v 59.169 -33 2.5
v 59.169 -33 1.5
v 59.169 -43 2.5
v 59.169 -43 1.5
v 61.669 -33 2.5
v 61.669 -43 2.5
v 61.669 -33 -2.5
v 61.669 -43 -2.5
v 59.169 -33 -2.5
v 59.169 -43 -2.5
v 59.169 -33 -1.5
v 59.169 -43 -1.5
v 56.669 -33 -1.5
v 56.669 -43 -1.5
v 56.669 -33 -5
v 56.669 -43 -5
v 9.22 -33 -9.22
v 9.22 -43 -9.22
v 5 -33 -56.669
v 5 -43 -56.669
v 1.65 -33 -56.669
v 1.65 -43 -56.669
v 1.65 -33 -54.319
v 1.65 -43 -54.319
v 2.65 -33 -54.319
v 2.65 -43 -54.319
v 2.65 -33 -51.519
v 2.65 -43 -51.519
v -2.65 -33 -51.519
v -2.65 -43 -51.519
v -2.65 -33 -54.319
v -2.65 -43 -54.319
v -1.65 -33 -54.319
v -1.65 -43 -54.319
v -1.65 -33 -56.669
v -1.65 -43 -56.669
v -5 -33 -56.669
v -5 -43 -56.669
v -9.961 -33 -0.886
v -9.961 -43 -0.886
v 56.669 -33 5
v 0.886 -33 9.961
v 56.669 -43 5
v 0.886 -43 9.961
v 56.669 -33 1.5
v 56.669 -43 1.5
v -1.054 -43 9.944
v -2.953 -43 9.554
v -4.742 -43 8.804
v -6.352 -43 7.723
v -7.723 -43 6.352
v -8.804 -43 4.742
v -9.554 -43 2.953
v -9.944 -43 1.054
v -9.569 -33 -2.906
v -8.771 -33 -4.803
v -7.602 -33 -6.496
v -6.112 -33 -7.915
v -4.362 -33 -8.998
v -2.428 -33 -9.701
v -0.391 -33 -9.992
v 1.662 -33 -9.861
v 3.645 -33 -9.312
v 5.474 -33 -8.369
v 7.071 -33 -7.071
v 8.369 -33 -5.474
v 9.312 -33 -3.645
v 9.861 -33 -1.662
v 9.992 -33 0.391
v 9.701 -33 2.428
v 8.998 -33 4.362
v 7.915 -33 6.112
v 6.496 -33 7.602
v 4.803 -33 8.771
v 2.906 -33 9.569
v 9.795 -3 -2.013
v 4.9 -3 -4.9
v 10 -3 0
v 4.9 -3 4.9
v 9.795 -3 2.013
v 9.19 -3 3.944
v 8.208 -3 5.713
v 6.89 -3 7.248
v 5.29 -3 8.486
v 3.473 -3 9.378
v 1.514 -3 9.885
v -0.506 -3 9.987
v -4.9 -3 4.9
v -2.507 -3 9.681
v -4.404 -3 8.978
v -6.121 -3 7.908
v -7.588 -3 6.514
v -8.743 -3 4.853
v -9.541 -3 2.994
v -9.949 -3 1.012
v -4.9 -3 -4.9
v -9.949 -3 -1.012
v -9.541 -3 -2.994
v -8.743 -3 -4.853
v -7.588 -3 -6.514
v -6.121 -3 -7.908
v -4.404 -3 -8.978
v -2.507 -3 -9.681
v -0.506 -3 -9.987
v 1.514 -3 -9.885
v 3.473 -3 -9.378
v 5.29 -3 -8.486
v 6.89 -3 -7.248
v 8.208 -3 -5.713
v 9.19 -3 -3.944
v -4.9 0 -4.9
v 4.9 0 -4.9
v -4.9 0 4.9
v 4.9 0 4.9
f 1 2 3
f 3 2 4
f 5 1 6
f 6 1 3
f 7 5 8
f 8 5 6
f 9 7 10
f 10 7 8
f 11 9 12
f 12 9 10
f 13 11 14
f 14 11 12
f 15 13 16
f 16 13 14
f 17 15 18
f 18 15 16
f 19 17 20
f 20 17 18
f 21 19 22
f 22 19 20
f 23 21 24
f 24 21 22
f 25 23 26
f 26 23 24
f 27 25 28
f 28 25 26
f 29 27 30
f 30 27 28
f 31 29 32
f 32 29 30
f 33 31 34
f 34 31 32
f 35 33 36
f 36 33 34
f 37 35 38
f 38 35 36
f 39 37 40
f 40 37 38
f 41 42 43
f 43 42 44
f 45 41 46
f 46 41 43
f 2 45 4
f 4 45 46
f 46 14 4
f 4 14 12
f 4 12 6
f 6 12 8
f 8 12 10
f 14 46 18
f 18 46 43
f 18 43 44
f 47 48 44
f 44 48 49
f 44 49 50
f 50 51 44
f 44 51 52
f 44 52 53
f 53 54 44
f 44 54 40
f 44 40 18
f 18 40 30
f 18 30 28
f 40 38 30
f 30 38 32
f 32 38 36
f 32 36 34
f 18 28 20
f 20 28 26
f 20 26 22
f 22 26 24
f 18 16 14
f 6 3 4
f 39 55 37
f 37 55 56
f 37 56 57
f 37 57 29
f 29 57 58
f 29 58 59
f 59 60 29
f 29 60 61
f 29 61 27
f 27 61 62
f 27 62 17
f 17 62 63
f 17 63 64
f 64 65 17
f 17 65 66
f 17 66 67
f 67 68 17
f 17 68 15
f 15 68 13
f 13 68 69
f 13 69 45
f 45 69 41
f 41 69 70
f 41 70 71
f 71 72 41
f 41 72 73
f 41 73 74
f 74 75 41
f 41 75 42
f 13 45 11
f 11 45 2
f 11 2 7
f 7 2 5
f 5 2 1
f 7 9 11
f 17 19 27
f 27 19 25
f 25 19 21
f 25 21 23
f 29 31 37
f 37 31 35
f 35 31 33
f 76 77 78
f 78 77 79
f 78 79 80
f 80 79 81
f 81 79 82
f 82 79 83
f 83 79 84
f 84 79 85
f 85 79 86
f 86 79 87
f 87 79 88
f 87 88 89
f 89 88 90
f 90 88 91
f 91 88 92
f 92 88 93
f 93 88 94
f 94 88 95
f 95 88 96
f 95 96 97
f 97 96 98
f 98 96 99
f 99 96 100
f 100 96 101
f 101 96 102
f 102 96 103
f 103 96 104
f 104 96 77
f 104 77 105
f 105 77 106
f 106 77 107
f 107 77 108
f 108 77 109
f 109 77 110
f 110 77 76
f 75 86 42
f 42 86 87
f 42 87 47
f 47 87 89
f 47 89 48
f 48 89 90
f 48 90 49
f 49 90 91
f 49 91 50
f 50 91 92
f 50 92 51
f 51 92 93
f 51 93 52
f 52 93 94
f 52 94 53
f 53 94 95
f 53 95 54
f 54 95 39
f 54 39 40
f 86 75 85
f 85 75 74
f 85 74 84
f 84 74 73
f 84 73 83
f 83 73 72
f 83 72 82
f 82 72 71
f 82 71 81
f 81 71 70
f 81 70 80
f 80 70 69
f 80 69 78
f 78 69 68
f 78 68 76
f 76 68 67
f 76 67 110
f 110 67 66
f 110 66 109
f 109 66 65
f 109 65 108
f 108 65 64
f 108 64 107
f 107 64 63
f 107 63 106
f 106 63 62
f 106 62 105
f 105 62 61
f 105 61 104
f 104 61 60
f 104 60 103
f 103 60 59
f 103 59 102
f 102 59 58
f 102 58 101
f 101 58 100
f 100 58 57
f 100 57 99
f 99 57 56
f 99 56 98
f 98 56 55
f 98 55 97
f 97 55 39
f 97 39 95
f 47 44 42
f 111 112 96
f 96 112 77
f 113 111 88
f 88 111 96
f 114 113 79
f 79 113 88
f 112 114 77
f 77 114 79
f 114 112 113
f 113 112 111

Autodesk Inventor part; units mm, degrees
ref_plane "YZ Plane" through (0, 0, 0) normal (1, 0, 0) x (0, 1, 0)
ref_plane "XZ Plane" through (0, 0, 0) normal (0, 1, 0) x (-1, 0, 0)
ref_plane "XY Plane" through (0, 0, 0) normal (0, 0, 1) x (1, 0, 0)
sketch "Sketch1" plane through (0, 0, 0) normal (0, 1, 0) x (-1, 0, 0)
  line L0 (4.9, 4.9) -> (-4.9, 4.9)
  line L1 (-4.9, 4.9) -> (-4.9, -4.9)
  line L2 (-4.9, -4.9) -> (4.9, -4.9)
  line L3 (4.9, -4.9) -> (4.9, 4.9)
  line L4 (4.9, 4.9) -> (-4.9, -4.9) construction
  line L5 (-4.9, 4.9) -> (4.9, -4.9) construction
  point P0 (0, 0)
  dimension "d0" = 9.8
  dimension "d1" = 9.8
extrude "Extrusion1" add sketch "Sketch1" against normal blind 3
sketch "Sketch2" plane through (0, -3, 0) normal (0, -1, 0) x (1, 0, 0)
  circle A0 centre (0, 0) radius 10
  dimension "d4" = 20
extrude "Extrusion2" add sketch "Sketch2" along normal blind 30
sketch "Sketch3" plane through (0, -33, 0) normal (0, -1, 0) x (1, 0, 0)
  arc A0 (56.6685, -50.6545) -> (56.6685, -62.6825) centre (56.6685, -56.6685) ccw projected
  line L0 (56.6685, -56.6685) -> (0, -56.6685)
  line L1 (0, -56.6685) -> (0, 0)
  circle A1 centre (0, 0) radius 10
  circle A2 centre (0, 0) radius 10 projected
  line L2 (0, -56.6685) -> (-5, -56.6685)
  line L3 (-5, -56.6685) -> (-9.9607, -0.8858)
  line L4 (56.6685, 5) -> (0.8858, 9.9607)
  line L5 (0, -56.6685) -> (5, -56.6685)
  line L6 (56.6685, -5) -> (0.8858, -9.9607)
  line L7 (5, -56.6685) -> (9.9607, -0.8858)
  line L8 (56.6685, 5) -> (112.4513, 9.9607)
  line L9 (56.6685, -5) -> (112.4513, -9.9607)
  line L10 (-5, -56.6685) -> (-9.9607, -112.4513)
  line L11 (5, -56.6685) -> (9.9607, -112.4513)
  line L12 (56.6685, 5) -> (56.6685, -5)
  line L13 (56.6685, 0) -> (56.6685, 1.5)
  line L14 (56.6685, 1.5) -> (59.1685, 1.5)
  line L15 (59.1685, 1.5) -> (59.1685, 2.5)
  line L16 (56.6685, 0) -> (56.6685, -1.5)
  line L17 (56.6685, -1.5) -> (59.1685, -1.5)
  line L18 (59.1685, -1.5) -> (59.1685, -2.5)
  line L19 (59.1685, -2.5) -> (61.6685, -2.5)
  line L20 (61.6685, -2.5) -> (61.6685, 2.5)
  line L21 (61.6685, 2.5) -> (59.1685, 2.5)
  line L22 (-1.5, -56.6685) -> (-1.5, -54.1685)
  line L23 (-1.5, -54.1685) -> (-2.5, -54.1685)
  line L24 (1.5, -56.6685) -> (1.5, -54.1685)
  line L25 (1.5, -54.1685) -> (2.5, -54.1685)
  line L26 (2.5, -54.1685) -> (2.5, -51.6685)
  line L27 (2.5, -51.6685) -> (-2.5, -51.6685)
  line L28 (-2.5, -51.6685) -> (-2.5, -54.1685)
  line L29 (-1.5, -56.6685) -> (1.5, -56.6685)
  line L30 (1.5, -56.6685) -> (1.65, -56.6685)
  line L31 (1.65, -56.6685) -> (1.65, -56.5185)
  line L32 (1.65, -56.5185) -> (1.5, -56.5185)
  line L33 (1.5, -56.5185) -> (1.5, -56.6685)
  line L34 (1.5, -54.1685) -> (1.65, -54.1685)
  line L35 (1.65, -54.1685) -> (1.65, -54.3185)
  line L36 (1.65, -54.3185) -> (1.5, -54.3185)
  line L37 (1.5, -54.3185) -> (1.5, -54.1685)
  line L38 (2.5, -54.1685) -> (2.65, -54.1685)
  line L39 (2.65, -54.1685) -> (2.65, -54.3185)
  line L40 (2.65, -54.3185) -> (2.5, -54.3185)
  line L41 (2.5, -54.3185) -> (2.5, -54.1685)
  line L42 (2.5, -51.6685) -> (2.65, -51.6685)
  line L43 (2.65, -51.6685) -> (2.65, -51.5185)
  line L44 (2.65, -51.5185) -> (2.5, -51.5185)
  line L45 (2.5, -51.5185) -> (2.5, -51.6685)
  line L46 (-2.5, -51.6685) -> (-2.65, -51.6685)
  line L47 (-2.65, -51.6685) -> (-2.65, -51.5185)
  line L48 (-2.65, -51.5185) -> (-2.5, -51.5185)
  line L49 (-2.5, -51.5185) -> (-2.5, -51.6685)
  line L50 (-2.5, -54.1685) -> (-2.65, -54.1685)
  line L51 (-2.65, -54.1685) -> (-2.65, -54.3185)
  line L52 (-2.65, -54.3185) -> (-2.5, -54.3185)
  line L53 (-2.5, -54.3185) -> (-2.5, -54.1685)
  line L54 (-1.5, -54.1685) -> (-1.65, -54.1685)
  line L55 (-1.65, -54.1685) -> (-1.65, -54.3185)
  line L56 (-1.65, -54.3185) -> (-1.5, -54.3185)
  line L57 (-1.5, -54.3185) -> (-1.5, -54.1685)
  line L58 (-1.5, -56.6685) -> (-1.65, -56.6685)
  line L59 (-1.65, -56.6685) -> (-1.65, -56.5185)
  line L60 (-1.65, -56.5185) -> (-1.5, -56.5185)
  line L61 (-1.5, -56.5185) -> (-1.5, -56.6685)
  line L62 (2.65, -51.6685) -> (2.65, -54.1685)
  line L63 (2.5, -51.5185) -> (-2.5, -51.5185)
  line L64 (-2.65, -51.6685) -> (-2.65, -54.1685)
  line L65 (-1.65, -54.3185) -> (-2.5, -54.3185)
  line L66 (-1.65, -54.3185) -> (-1.65, -56.5185)
  line L67 (1.65, -54.3185) -> (2.5, -54.3185)
  line L68 (1.65, -54.3185) -> (1.65, -56.5185)
  point P0 (0.8858, 9.9607)
  point P1 (0.8858, -9.9607)
  point P2 (0, -56.6685)
  point P3 (9.2196, -9.2196)
  point P4 (-9.9607, -0.8858)
  dimension "d8" = 5
  dimension "d23" = 1.5
  dimension "d24" = 2.5
  dimension "d25" = 1
  dimension "d26" = 1.5
  dimension "d27" = 2.5
  dimension "d28" = 1
  dimension "d29" = 2.5
  dimension "d32" = 2.5
  dimension "d33" = 1
  dimension "d34" = 2.5
  dimension "d35" = 1
  dimension "d36" = 2.5
  dimension "d37" = 0.15
  dimension "d38" = 0.15
  dimension "d39" = 0.15
  dimension "d40" = 0.15
  dimension "d41" = 0.15
  dimension "d42" = 0.15
  dimension "d43" = 0.15
  dimension "d44" = 0.15
  dimension "d45" = 0.15
  dimension "d46" = 0.15
  dimension "d47" = 0.15
  dimension "d48" = 0.15
  dimension "d49" = 0.15
  dimension "d50" = 0.15
  dimension "d51" = 0.15
  dimension "d52" = 0.15
extrude "Extrusion3" add sketch "Sketch3" along normal blind 10 contours L0 L31 L68 L67 L40 L39 L62 L43 L44 L63 L1 A1 L6 L7 | L7 A1 L4 L12 L6 | L6 A1 L7 | A1 | L12 L14 L15 L21 L20 L19 L18 L17 | L1 L63 L48 L47 L64 L51 L52 L65 L66 L59 L2 L3 A1
properties part number "Leg_v1"
